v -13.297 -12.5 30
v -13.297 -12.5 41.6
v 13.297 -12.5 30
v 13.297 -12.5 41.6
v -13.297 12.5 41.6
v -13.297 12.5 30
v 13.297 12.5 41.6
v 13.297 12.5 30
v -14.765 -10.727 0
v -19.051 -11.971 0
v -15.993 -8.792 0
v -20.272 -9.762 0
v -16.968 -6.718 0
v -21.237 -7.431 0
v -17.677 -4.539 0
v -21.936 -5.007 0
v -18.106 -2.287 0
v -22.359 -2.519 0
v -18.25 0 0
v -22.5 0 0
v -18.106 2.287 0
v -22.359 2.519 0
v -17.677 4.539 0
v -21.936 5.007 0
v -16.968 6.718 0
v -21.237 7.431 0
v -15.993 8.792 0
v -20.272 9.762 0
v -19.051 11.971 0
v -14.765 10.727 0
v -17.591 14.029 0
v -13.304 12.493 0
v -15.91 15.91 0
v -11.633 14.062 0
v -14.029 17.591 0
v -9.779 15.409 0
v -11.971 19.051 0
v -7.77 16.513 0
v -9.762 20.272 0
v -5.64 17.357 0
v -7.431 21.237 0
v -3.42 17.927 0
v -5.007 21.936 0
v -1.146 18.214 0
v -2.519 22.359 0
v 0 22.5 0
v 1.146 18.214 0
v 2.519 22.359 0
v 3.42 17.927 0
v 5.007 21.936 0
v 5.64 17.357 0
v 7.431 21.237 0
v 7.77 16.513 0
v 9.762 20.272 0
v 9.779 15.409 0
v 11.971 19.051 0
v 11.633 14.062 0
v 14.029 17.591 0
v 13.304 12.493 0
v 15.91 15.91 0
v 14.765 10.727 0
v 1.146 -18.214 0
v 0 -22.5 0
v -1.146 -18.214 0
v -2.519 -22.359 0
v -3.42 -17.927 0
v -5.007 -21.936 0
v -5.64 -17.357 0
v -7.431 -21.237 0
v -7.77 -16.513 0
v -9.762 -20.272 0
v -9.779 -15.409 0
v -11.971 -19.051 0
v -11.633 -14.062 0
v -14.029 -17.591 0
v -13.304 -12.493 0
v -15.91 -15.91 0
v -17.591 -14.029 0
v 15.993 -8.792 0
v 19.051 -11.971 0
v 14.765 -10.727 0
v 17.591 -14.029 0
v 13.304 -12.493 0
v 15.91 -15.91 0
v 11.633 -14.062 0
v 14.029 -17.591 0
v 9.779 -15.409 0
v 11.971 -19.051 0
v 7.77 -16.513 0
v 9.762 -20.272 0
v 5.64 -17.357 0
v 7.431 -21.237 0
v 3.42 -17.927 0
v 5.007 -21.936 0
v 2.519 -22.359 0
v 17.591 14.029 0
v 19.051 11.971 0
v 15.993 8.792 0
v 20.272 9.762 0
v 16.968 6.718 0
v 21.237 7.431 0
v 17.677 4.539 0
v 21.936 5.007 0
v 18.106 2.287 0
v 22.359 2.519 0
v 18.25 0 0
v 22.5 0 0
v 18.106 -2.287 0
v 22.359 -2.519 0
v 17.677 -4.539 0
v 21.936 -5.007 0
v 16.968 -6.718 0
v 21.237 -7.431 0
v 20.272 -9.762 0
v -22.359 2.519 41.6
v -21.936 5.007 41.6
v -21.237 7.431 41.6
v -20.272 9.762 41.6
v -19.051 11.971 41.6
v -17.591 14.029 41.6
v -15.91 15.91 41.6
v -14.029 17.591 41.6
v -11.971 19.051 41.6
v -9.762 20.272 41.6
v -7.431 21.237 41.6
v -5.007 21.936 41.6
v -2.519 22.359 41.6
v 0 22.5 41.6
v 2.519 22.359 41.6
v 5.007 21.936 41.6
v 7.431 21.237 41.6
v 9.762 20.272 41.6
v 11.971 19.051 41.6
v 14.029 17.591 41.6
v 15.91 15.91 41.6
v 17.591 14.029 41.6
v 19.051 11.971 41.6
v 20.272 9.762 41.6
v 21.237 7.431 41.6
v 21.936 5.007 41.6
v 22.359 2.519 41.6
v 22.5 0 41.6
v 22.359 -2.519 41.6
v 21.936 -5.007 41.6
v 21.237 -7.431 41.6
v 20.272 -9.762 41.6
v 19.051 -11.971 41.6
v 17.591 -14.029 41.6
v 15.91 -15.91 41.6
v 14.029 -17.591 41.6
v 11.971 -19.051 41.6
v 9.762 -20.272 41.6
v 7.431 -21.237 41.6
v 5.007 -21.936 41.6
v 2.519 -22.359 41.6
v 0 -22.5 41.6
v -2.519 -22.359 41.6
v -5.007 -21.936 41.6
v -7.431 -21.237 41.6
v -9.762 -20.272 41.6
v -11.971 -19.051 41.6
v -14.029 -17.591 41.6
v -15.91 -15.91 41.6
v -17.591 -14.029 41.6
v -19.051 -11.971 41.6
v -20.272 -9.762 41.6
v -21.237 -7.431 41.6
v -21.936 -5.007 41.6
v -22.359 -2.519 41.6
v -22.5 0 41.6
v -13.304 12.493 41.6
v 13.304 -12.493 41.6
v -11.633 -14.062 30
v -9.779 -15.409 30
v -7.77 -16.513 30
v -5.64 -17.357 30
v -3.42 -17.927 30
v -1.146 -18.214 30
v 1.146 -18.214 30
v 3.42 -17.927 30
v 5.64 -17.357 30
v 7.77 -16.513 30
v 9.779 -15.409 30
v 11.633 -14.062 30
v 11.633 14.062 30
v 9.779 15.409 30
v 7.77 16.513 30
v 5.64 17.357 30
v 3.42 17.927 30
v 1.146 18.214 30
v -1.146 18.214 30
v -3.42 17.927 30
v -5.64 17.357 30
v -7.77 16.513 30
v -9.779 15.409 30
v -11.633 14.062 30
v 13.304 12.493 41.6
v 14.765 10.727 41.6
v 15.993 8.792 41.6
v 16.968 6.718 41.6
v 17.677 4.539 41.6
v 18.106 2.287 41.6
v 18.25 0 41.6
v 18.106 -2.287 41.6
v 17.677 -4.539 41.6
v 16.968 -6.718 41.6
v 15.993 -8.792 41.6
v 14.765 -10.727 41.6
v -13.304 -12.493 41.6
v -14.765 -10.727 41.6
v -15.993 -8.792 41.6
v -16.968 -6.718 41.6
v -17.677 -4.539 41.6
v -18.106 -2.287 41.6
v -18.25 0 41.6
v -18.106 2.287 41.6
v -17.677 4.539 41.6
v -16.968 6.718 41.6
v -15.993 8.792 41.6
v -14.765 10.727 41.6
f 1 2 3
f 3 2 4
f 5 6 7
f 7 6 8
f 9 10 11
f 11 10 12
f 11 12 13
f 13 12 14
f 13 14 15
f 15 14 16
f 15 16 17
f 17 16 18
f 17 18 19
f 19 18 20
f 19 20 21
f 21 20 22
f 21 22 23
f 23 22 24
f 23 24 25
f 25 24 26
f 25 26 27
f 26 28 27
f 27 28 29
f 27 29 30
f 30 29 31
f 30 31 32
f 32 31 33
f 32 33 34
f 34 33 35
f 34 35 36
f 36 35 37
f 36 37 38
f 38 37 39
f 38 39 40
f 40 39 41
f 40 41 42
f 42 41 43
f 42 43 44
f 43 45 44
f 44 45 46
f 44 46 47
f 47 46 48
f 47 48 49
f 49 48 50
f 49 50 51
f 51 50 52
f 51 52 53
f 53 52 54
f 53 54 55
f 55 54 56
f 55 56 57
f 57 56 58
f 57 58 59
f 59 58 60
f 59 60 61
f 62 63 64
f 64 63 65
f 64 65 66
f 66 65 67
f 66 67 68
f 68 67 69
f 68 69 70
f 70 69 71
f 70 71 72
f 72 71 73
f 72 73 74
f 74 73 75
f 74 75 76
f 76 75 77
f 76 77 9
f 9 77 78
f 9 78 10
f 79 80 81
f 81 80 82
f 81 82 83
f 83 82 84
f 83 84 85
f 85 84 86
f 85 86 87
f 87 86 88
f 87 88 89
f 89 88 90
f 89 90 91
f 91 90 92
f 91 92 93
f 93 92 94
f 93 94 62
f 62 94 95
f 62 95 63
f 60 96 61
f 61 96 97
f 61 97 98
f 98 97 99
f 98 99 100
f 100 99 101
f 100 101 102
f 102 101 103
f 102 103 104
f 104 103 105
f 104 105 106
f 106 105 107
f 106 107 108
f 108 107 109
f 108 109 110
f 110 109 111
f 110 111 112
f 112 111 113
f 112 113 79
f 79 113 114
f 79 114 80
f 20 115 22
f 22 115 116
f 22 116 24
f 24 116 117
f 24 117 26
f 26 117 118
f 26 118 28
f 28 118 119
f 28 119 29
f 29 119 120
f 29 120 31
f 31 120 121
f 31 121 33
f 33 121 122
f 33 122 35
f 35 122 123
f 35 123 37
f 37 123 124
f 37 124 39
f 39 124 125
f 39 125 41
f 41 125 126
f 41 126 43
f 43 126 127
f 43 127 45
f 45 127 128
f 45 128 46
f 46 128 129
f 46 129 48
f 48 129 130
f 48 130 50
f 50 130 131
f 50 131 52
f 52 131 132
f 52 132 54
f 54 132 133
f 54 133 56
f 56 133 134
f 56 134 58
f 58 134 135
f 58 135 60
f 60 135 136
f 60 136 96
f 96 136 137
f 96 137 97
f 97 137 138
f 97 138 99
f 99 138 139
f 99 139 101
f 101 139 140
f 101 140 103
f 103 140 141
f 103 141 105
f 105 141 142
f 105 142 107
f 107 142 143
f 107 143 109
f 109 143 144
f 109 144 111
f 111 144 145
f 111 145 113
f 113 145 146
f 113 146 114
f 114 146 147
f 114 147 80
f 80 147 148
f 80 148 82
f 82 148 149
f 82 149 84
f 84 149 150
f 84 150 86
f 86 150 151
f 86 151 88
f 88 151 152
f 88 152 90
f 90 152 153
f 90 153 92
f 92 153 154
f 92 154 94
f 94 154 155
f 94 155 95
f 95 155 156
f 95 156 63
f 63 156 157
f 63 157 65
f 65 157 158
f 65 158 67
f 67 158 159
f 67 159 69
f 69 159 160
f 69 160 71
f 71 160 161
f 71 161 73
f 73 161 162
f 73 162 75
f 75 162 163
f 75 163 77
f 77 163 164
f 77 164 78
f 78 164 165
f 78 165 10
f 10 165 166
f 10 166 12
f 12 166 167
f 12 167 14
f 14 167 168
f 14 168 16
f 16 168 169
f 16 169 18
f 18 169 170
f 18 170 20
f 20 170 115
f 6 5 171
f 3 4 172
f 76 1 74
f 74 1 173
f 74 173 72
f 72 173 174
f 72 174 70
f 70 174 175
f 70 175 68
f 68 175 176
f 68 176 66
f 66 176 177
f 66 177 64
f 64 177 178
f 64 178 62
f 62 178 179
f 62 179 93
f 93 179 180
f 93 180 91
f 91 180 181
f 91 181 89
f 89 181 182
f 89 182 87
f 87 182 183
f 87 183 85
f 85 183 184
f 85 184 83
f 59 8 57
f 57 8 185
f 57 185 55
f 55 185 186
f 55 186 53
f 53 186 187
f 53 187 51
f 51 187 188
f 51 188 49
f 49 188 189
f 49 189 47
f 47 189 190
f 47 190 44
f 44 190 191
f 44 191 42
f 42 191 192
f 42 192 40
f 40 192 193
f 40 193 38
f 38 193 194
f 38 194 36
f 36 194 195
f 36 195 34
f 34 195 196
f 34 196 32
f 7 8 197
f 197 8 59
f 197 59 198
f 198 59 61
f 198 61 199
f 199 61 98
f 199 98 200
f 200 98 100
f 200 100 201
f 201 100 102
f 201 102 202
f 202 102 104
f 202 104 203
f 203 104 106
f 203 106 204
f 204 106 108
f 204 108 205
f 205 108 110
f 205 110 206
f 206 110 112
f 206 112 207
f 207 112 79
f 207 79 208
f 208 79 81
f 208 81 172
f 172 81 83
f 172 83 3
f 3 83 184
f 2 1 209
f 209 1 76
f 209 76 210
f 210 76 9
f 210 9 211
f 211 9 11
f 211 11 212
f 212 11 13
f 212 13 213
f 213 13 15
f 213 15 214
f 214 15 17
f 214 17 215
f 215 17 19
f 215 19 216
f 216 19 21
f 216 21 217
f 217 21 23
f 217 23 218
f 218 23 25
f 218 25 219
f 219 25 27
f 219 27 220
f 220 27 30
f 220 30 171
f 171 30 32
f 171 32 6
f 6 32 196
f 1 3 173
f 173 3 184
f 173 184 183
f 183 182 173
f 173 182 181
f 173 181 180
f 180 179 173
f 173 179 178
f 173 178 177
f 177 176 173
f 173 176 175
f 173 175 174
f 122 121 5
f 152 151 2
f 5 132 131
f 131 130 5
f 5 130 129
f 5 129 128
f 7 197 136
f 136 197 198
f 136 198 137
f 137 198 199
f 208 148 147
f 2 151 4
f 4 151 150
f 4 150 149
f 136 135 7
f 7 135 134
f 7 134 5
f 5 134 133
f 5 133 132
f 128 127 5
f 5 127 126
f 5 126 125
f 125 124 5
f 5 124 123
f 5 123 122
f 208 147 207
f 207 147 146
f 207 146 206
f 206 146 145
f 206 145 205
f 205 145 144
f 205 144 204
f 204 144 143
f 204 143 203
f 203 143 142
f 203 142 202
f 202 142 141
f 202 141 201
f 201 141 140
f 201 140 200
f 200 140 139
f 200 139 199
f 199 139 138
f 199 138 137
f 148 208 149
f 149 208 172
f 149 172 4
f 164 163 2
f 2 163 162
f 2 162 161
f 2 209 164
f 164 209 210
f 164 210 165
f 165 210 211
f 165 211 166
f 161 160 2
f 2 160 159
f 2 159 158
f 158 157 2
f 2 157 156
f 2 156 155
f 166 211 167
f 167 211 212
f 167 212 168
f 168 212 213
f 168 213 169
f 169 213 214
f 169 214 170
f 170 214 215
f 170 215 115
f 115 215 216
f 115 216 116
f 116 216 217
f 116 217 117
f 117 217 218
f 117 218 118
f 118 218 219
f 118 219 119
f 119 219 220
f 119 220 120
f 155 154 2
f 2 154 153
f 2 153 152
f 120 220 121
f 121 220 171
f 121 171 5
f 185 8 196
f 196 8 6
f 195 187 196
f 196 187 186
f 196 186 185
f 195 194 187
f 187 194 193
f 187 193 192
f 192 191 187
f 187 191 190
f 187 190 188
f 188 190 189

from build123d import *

# Parameters (mm, degrees)
CROQUIS1_R              = 22.5
CROQUIS1_R_2            = 18.25
SALIENTE_EXTRUIR1_DEPTH = 30
SALIENTE_EXTRUIR2_DEPTH = 11.6
SALIENTE_EXTRUIR3_DEPTH = 11.6


with BuildPart() as part:
    # Croquis1 → Saliente-Extruir1 (new body)
    with BuildSketch(Plane.XY):
        Circle(CROQUIS1_R)
        Circle(CROQUIS1_R_2, mode=Mode.SUBTRACT)
    extrude(amount=SALIENTE_EXTRUIR1_DEPTH)

    # Croquis2 → Saliente-Extruir2 (add)
    with BuildSketch(Plane.XY.offset(30)):
        with BuildLine():
            Line((-18.708286934, 12.5), (18.708286934, 12.5))
            ThreePointArc((18.708286934, 12.5), (0, 22.5), (-18.708286934, 12.5))
        make_face()
        with BuildLine():
            Line((-18.708286934, -12.5), (18.708286934, -12.5))
            ThreePointArc((18.708286934, -12.5), (0, -22.5), (-18.708286934, -12.5))
        make_face()
    extrude(amount=SALIENTE_EXTRUIR2_DEPTH)

    # Croquis3 → Saliente-Extruir3 (add)
    with BuildSketch(Plane.XY.offset(30)):
        with BuildLine():
            Line((18.708286934, 12.5), (13.297086147, 12.5))
            ThreePointArc((13.297086147, 12.5), (18.25, 0), (13.297086147, -12.5))
            Line((13.297086147, -12.5), (18.708286934, -12.5))
            ThreePointArc((18.708286934, -12.5), (22.5, 0), (18.708286934, 12.5))
        make_face()
        with BuildLine():
            Line((-13.297086147, 12.5), (-18.708286934, 12.5))
            ThreePointArc((-18.708286934, 12.5), (-22.5, 0), (-18.708286934, -12.5))
            Line((-18.708286934, -12.5), (-13.297086147, -12.5))
            ThreePointArc((-13.297086147, -12.5), (-18.25, 0), (-13.297086147, 12.5))
        make_face()
    extrude(amount=SALIENTE_EXTRUIR3_DEPTH)


solid = part.part
